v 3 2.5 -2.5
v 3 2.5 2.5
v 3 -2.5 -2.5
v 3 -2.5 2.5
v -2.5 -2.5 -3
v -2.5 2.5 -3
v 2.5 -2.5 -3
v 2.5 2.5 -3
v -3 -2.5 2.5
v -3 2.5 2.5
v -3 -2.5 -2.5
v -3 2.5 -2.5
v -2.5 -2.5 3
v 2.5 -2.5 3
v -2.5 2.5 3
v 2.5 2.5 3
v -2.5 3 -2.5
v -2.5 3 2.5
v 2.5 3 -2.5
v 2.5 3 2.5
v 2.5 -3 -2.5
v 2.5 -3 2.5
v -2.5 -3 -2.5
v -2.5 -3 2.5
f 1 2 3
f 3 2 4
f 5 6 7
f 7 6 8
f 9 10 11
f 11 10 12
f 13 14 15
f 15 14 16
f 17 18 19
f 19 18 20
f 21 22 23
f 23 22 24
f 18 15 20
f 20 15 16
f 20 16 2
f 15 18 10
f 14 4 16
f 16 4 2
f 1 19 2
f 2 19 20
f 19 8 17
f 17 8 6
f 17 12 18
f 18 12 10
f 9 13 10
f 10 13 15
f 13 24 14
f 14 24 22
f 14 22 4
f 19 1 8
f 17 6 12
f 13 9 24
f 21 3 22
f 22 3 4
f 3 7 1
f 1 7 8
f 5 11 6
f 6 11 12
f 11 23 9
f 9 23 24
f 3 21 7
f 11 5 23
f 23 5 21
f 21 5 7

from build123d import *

# Parameters (mm, degrees)
SKETCH1_W           = 6
SKETCH1_H           = 6
BOSS_EXTRUDE1_DEPTH = 3
CHAMFER1_SIZE       = 0.5


with BuildPart() as part:
    # Sketch1 → Boss-Extrude1 (new, symmetric)
    with BuildSketch(Plane(origin=(0, 0, 0), x_dir=(1, 0, 0), z_dir=(0, 1, 0))):
        Rectangle(SKETCH1_W, SKETCH1_H)
    extrude(amount=BOSS_EXTRUDE1_DEPTH, both=True)

    # Chamfer1
    chamfer1_edges = [part.edges().sort_by_distance(p)[0] for p in [
        (-3, 3, 0),
        (0, 3, 3),
        (3, 3, 0),
        (0, -3, 3),
        (-3, -3, 0),
        (0, -3, -3),
        (3, -3, 0),
        (3, 0, 3),
        (-3, 0, 3),
        (-3, 0, -3),
        (3, 0, -3),
        (0, 3, -3),
    ]]
    chamfer(chamfer1_edges, length=CHAMFER1_SIZE)


solid = part.part
